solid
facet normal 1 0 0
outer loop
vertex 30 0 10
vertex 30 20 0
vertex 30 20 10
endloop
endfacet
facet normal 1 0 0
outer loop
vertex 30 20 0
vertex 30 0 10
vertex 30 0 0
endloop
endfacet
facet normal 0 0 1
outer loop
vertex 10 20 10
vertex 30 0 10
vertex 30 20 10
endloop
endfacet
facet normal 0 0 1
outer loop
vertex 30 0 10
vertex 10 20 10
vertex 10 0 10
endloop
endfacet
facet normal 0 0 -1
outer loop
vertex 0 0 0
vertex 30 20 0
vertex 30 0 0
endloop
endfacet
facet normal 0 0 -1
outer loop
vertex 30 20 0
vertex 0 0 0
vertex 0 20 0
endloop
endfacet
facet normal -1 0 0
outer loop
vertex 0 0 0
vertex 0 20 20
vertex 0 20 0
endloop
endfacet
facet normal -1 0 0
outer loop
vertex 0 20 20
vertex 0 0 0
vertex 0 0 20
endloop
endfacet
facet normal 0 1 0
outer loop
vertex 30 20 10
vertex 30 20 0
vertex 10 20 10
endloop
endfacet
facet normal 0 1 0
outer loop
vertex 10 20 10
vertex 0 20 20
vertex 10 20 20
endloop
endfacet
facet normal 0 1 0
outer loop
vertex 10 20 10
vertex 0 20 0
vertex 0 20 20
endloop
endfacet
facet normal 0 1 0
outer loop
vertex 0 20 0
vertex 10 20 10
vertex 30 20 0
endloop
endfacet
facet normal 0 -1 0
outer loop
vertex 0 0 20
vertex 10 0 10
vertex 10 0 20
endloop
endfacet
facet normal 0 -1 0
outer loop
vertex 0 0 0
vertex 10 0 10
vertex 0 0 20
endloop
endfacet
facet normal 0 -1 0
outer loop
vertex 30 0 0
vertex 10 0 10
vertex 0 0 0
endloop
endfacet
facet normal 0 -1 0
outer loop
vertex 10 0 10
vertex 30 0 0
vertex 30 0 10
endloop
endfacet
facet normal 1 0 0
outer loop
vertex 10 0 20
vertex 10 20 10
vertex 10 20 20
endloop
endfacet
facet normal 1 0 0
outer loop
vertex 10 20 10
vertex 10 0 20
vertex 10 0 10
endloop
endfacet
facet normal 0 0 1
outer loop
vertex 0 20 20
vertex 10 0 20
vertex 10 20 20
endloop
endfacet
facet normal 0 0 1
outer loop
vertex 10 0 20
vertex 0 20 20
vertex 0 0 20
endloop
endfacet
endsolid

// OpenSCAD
size = 10;

union() {
    cube([3 * size,2 * size,size]);
    translate([0, 0, size]) cube([size,2 * size,size]);
}
